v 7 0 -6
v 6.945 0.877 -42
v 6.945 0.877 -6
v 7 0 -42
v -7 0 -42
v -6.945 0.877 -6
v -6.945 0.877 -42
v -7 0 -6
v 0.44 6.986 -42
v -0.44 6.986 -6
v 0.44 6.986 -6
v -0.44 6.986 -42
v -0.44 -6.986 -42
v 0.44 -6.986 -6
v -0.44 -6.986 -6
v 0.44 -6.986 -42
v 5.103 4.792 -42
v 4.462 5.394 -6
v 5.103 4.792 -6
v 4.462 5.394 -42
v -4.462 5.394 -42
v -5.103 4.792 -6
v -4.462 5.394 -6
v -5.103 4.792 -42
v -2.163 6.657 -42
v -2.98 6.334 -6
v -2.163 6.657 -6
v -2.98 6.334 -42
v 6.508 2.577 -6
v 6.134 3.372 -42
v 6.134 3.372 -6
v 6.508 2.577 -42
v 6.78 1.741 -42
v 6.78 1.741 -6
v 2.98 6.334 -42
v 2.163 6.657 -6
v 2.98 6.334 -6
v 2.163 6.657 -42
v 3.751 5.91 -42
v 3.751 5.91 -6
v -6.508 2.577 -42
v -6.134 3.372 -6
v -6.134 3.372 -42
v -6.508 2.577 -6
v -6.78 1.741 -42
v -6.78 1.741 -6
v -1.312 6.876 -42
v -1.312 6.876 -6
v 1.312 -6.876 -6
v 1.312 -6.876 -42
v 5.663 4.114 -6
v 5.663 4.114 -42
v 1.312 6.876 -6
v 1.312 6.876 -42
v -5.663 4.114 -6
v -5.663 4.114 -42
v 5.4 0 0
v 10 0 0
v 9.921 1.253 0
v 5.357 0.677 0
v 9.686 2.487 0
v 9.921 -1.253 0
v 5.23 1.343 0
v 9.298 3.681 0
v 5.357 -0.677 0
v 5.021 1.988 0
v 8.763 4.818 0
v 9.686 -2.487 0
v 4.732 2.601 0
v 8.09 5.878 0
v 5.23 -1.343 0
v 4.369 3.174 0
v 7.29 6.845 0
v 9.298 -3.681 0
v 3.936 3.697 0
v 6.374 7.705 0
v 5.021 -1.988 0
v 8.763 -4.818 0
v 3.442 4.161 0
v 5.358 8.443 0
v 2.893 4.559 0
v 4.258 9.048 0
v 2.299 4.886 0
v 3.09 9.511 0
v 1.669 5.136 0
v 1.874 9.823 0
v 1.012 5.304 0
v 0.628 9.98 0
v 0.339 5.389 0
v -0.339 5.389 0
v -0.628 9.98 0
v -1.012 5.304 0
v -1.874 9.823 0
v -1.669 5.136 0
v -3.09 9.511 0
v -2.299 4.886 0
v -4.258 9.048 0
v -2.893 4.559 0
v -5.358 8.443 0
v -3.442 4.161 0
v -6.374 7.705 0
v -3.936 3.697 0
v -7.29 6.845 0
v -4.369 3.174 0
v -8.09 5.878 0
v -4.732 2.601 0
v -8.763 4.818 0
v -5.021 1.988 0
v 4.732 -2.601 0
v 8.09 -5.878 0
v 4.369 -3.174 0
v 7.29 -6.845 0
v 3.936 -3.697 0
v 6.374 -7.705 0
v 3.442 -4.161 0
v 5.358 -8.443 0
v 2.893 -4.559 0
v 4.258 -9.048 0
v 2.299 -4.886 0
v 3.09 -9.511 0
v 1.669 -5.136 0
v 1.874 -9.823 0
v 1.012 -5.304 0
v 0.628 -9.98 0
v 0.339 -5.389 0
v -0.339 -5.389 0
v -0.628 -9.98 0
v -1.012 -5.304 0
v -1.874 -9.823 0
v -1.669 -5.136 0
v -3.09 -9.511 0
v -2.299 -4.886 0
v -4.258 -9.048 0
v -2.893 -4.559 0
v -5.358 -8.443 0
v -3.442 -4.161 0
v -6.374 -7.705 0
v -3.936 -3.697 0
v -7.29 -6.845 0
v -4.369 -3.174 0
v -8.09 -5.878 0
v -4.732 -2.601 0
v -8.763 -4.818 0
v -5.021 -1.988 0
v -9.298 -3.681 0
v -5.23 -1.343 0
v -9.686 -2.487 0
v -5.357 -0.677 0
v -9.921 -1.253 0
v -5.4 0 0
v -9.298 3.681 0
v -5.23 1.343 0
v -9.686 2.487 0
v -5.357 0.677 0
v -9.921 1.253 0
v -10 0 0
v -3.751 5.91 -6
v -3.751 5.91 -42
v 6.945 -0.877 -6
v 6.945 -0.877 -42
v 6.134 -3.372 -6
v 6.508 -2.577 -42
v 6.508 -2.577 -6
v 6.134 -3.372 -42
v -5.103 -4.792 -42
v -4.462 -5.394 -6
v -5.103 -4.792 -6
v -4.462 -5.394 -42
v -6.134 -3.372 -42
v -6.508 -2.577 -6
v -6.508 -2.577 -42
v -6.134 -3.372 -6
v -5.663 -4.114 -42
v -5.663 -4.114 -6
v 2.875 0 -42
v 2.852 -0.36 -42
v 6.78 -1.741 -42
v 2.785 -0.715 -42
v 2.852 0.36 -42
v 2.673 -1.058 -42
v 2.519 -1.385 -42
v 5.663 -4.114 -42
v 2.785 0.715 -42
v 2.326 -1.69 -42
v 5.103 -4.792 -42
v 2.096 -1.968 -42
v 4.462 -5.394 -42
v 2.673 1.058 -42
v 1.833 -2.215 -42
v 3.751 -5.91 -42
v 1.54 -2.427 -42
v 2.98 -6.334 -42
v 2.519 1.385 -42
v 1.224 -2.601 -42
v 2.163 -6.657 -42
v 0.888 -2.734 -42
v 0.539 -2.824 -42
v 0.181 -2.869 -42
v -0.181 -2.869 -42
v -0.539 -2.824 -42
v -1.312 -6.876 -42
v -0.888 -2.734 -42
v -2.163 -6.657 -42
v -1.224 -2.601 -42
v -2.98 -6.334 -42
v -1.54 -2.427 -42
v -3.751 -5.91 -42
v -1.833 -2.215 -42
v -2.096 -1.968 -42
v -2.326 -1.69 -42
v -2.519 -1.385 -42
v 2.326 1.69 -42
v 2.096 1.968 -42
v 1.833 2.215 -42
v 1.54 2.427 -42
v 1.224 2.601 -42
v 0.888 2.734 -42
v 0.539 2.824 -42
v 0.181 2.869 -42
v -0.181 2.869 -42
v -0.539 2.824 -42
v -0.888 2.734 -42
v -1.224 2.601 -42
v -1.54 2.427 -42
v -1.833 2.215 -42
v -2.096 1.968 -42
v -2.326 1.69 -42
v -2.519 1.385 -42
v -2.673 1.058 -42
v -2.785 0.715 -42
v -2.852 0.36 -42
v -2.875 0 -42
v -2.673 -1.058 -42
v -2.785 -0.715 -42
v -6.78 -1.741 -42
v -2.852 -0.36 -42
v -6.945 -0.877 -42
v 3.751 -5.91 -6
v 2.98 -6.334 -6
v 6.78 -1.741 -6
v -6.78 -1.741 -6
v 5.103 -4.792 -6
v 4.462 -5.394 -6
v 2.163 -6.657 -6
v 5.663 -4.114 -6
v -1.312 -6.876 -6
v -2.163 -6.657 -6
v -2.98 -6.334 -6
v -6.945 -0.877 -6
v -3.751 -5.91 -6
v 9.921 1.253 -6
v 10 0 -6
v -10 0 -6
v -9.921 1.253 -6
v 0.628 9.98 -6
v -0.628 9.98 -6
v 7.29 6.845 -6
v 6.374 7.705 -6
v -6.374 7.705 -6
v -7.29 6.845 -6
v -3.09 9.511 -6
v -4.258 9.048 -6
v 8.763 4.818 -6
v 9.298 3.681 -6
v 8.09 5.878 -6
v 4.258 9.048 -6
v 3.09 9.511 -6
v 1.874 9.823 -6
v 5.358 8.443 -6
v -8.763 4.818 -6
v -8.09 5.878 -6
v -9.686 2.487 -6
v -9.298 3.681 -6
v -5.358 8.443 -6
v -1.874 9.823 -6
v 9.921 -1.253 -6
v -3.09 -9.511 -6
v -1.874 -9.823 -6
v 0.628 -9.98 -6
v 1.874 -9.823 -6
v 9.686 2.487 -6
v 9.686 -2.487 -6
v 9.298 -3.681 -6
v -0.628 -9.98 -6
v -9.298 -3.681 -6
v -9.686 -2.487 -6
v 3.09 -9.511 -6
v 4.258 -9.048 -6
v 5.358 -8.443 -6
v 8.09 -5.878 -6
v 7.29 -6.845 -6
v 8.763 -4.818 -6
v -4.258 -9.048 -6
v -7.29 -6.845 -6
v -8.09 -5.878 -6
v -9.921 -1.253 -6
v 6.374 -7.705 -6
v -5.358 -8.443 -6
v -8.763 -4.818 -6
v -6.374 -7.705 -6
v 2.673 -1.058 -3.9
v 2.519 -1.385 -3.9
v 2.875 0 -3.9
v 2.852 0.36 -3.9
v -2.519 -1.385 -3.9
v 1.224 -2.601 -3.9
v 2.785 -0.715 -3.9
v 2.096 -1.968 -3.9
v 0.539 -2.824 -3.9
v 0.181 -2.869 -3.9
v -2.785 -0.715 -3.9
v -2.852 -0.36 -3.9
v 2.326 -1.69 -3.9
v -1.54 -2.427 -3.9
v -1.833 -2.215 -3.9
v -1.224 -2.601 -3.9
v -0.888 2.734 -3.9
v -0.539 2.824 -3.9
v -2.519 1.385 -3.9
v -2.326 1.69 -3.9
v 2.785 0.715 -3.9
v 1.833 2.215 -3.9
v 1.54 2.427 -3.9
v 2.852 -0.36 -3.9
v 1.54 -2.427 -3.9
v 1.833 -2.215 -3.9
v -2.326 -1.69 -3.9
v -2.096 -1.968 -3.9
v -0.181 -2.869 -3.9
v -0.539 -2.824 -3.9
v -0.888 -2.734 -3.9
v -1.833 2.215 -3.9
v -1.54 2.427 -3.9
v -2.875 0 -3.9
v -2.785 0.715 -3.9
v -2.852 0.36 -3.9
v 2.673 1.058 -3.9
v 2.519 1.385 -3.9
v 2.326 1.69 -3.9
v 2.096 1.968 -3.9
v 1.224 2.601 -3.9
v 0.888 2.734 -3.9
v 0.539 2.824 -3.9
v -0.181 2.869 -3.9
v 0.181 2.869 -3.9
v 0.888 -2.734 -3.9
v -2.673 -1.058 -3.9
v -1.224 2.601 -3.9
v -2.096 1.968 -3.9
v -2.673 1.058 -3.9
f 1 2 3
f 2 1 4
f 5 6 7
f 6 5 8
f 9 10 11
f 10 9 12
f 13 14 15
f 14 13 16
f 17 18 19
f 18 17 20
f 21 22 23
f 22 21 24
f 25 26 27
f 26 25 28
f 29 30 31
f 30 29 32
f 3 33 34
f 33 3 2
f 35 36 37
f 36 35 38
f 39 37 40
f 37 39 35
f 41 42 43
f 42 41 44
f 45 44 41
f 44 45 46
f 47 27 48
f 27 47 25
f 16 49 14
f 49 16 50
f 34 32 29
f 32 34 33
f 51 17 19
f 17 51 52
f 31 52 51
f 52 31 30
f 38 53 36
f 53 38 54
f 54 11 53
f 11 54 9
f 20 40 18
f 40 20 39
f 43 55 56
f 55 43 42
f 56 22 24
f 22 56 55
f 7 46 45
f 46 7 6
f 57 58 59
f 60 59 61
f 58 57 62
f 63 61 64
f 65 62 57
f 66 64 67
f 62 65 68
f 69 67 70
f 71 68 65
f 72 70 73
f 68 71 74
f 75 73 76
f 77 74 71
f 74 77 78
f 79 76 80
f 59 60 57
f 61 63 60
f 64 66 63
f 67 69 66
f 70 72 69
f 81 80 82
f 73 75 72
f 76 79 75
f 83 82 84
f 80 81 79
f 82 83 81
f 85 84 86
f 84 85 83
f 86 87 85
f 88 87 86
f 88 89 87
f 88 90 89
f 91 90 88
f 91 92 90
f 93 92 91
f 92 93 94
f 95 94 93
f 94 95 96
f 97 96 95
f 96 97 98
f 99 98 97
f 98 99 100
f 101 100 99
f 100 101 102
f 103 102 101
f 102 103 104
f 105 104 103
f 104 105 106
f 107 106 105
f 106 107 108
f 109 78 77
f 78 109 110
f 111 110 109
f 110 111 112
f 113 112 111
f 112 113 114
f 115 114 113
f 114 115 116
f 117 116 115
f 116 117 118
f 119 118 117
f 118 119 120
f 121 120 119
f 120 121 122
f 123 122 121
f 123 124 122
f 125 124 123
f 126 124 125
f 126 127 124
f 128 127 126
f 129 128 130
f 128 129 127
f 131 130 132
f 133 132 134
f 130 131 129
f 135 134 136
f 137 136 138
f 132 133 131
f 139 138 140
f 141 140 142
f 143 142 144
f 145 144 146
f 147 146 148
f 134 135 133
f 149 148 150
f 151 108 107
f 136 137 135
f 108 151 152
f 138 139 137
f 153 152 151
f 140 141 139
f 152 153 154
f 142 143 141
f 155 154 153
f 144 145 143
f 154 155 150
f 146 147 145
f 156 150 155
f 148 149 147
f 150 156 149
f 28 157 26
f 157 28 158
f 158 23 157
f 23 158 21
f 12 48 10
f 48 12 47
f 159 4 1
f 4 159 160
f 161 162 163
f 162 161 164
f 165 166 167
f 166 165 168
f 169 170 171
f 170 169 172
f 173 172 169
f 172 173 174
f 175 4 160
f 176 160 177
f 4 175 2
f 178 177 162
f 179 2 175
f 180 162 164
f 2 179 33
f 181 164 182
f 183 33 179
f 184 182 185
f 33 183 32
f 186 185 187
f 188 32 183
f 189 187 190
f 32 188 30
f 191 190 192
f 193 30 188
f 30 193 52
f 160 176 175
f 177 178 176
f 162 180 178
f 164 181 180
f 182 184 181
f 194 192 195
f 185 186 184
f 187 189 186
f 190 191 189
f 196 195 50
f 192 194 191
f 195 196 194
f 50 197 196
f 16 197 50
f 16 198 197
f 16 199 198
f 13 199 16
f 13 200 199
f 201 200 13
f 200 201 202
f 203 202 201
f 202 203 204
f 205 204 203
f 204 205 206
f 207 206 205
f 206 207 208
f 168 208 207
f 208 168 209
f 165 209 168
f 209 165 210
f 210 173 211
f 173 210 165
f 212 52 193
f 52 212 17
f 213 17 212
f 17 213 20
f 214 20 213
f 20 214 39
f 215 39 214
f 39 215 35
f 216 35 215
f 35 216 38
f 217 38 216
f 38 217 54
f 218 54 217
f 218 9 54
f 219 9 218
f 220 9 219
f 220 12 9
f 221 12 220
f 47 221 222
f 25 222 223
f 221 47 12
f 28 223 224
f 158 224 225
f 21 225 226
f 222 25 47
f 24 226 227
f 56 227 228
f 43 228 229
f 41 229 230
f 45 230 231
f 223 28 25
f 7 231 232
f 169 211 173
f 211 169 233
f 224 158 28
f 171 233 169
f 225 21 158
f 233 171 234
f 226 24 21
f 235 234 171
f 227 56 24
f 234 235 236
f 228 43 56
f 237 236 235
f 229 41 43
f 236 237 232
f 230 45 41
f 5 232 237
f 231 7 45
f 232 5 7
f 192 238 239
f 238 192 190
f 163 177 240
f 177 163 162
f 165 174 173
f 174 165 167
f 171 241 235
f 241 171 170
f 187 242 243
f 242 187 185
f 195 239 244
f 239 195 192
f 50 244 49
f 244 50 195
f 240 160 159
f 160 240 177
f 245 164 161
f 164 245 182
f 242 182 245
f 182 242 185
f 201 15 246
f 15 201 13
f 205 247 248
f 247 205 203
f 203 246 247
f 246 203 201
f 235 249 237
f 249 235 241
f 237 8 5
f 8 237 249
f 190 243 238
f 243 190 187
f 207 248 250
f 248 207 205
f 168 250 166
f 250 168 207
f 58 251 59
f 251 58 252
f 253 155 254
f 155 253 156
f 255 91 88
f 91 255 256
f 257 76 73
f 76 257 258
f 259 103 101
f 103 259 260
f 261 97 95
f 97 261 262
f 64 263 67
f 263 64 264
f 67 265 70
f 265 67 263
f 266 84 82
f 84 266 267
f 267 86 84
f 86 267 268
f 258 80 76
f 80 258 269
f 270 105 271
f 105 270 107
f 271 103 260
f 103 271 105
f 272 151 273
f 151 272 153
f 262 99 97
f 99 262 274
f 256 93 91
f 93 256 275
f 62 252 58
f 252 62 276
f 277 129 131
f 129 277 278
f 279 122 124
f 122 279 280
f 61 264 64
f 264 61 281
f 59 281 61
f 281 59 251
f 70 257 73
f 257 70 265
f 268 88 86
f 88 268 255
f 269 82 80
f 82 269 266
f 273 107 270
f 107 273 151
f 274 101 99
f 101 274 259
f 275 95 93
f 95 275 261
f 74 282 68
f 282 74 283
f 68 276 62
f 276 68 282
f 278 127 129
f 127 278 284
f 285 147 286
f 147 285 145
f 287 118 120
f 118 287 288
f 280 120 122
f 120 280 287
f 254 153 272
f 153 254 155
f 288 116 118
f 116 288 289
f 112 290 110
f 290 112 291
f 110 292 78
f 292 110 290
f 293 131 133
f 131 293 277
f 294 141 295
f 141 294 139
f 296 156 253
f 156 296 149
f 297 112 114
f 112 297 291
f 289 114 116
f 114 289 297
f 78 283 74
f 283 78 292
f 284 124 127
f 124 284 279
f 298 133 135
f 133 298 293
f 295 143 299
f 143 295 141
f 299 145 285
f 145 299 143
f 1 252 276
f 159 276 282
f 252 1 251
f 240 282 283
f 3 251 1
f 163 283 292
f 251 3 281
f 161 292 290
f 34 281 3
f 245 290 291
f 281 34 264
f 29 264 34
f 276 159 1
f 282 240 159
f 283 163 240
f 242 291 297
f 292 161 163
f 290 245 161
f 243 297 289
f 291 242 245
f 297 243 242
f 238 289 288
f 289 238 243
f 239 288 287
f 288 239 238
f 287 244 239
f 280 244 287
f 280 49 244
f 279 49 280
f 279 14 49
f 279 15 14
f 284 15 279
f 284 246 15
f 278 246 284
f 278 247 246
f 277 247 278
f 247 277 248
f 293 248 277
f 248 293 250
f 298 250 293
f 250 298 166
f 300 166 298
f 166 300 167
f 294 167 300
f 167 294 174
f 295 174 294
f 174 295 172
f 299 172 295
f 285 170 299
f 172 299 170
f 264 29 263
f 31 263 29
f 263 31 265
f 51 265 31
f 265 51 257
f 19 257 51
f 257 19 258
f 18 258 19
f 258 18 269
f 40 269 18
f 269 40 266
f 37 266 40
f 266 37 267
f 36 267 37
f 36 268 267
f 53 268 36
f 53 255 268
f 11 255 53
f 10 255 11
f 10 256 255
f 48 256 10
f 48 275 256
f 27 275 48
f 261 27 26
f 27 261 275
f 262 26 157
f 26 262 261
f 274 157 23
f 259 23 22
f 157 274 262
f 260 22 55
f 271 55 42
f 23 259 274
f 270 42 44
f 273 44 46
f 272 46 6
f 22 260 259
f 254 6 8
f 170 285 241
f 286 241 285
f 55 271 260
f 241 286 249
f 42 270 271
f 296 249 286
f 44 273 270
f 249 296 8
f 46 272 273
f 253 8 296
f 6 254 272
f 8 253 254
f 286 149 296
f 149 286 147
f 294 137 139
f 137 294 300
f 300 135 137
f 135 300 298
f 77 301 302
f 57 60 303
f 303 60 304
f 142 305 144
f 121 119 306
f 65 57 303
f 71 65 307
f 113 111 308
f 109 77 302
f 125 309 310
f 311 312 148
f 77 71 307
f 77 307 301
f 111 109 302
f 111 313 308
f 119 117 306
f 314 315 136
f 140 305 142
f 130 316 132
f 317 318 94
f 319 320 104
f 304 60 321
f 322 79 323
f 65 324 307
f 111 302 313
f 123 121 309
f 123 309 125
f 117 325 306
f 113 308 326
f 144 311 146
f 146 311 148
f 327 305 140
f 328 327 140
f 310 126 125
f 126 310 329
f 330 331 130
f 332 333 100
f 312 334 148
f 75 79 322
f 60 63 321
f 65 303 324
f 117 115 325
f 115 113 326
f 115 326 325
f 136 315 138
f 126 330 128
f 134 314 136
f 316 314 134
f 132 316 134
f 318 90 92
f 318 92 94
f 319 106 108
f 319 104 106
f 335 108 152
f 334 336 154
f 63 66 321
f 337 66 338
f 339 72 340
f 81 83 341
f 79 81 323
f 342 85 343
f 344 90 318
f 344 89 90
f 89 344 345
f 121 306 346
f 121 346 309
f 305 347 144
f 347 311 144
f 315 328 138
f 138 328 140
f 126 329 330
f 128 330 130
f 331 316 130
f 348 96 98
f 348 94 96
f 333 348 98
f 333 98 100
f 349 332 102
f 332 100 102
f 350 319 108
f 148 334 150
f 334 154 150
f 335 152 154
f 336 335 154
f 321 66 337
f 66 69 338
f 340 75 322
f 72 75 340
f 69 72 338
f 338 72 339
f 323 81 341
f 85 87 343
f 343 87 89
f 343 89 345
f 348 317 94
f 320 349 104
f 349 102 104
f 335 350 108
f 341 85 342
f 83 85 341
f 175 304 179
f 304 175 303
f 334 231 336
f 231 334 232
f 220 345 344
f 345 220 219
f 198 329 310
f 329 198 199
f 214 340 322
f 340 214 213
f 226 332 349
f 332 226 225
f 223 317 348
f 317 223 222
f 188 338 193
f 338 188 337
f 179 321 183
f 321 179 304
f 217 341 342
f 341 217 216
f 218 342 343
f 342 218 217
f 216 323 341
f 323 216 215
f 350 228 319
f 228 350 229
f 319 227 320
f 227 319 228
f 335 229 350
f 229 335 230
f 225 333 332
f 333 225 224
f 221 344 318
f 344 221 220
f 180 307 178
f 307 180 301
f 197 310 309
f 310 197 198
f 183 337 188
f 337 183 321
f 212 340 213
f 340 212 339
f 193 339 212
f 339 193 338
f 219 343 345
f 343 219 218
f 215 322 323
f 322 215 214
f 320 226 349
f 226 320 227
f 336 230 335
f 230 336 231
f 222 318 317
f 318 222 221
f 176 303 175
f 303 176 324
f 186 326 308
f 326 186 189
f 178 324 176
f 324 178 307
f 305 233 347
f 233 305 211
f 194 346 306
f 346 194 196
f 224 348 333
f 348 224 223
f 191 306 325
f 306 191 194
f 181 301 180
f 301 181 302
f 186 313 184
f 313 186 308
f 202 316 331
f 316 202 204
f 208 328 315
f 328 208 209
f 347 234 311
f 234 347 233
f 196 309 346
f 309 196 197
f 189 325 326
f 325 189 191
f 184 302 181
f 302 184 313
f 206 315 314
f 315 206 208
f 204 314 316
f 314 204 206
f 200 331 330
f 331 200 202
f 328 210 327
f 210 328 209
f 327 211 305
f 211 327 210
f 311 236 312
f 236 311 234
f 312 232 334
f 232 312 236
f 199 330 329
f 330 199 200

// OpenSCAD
$fn = 50;


difference() {
	union() {
		translate(v = [0, 0, -42.0000000000]) {
			cylinder(h = 42, r = 7.0000000000);
		}
		translate(v = [0, 0, -6.0000000000]) {
			cylinder(h = 6, r = 10.0000000000);
		}
	}
	union() {
		translate(v = [0, 0, 0]) {
			rotate(a = [0, 0, 0]) {
				difference() {
					union() {
						#translate(v = [0, 0, -42.0000000000]) {
							cylinder(h = 42, r = 2.6000000000);
						}
						#translate(v = [0, 0, -3.9000000000]) {
							cylinder(h = 3.9000000000, r = 7.0000000000, r1 = 2.8750000000, r2 = 5.4000000000);
						}
						#translate(v = [0, 0, -42.0000000000]) {
							cylinder(h = 42, r = 2.8750000000);
						}
						#translate(v = [0, 0, -42.0000000000]) {
							cylinder(h = 42, r = 2.6000000000);
						}
					}
					union();
				}
			}
		}
	}
}
